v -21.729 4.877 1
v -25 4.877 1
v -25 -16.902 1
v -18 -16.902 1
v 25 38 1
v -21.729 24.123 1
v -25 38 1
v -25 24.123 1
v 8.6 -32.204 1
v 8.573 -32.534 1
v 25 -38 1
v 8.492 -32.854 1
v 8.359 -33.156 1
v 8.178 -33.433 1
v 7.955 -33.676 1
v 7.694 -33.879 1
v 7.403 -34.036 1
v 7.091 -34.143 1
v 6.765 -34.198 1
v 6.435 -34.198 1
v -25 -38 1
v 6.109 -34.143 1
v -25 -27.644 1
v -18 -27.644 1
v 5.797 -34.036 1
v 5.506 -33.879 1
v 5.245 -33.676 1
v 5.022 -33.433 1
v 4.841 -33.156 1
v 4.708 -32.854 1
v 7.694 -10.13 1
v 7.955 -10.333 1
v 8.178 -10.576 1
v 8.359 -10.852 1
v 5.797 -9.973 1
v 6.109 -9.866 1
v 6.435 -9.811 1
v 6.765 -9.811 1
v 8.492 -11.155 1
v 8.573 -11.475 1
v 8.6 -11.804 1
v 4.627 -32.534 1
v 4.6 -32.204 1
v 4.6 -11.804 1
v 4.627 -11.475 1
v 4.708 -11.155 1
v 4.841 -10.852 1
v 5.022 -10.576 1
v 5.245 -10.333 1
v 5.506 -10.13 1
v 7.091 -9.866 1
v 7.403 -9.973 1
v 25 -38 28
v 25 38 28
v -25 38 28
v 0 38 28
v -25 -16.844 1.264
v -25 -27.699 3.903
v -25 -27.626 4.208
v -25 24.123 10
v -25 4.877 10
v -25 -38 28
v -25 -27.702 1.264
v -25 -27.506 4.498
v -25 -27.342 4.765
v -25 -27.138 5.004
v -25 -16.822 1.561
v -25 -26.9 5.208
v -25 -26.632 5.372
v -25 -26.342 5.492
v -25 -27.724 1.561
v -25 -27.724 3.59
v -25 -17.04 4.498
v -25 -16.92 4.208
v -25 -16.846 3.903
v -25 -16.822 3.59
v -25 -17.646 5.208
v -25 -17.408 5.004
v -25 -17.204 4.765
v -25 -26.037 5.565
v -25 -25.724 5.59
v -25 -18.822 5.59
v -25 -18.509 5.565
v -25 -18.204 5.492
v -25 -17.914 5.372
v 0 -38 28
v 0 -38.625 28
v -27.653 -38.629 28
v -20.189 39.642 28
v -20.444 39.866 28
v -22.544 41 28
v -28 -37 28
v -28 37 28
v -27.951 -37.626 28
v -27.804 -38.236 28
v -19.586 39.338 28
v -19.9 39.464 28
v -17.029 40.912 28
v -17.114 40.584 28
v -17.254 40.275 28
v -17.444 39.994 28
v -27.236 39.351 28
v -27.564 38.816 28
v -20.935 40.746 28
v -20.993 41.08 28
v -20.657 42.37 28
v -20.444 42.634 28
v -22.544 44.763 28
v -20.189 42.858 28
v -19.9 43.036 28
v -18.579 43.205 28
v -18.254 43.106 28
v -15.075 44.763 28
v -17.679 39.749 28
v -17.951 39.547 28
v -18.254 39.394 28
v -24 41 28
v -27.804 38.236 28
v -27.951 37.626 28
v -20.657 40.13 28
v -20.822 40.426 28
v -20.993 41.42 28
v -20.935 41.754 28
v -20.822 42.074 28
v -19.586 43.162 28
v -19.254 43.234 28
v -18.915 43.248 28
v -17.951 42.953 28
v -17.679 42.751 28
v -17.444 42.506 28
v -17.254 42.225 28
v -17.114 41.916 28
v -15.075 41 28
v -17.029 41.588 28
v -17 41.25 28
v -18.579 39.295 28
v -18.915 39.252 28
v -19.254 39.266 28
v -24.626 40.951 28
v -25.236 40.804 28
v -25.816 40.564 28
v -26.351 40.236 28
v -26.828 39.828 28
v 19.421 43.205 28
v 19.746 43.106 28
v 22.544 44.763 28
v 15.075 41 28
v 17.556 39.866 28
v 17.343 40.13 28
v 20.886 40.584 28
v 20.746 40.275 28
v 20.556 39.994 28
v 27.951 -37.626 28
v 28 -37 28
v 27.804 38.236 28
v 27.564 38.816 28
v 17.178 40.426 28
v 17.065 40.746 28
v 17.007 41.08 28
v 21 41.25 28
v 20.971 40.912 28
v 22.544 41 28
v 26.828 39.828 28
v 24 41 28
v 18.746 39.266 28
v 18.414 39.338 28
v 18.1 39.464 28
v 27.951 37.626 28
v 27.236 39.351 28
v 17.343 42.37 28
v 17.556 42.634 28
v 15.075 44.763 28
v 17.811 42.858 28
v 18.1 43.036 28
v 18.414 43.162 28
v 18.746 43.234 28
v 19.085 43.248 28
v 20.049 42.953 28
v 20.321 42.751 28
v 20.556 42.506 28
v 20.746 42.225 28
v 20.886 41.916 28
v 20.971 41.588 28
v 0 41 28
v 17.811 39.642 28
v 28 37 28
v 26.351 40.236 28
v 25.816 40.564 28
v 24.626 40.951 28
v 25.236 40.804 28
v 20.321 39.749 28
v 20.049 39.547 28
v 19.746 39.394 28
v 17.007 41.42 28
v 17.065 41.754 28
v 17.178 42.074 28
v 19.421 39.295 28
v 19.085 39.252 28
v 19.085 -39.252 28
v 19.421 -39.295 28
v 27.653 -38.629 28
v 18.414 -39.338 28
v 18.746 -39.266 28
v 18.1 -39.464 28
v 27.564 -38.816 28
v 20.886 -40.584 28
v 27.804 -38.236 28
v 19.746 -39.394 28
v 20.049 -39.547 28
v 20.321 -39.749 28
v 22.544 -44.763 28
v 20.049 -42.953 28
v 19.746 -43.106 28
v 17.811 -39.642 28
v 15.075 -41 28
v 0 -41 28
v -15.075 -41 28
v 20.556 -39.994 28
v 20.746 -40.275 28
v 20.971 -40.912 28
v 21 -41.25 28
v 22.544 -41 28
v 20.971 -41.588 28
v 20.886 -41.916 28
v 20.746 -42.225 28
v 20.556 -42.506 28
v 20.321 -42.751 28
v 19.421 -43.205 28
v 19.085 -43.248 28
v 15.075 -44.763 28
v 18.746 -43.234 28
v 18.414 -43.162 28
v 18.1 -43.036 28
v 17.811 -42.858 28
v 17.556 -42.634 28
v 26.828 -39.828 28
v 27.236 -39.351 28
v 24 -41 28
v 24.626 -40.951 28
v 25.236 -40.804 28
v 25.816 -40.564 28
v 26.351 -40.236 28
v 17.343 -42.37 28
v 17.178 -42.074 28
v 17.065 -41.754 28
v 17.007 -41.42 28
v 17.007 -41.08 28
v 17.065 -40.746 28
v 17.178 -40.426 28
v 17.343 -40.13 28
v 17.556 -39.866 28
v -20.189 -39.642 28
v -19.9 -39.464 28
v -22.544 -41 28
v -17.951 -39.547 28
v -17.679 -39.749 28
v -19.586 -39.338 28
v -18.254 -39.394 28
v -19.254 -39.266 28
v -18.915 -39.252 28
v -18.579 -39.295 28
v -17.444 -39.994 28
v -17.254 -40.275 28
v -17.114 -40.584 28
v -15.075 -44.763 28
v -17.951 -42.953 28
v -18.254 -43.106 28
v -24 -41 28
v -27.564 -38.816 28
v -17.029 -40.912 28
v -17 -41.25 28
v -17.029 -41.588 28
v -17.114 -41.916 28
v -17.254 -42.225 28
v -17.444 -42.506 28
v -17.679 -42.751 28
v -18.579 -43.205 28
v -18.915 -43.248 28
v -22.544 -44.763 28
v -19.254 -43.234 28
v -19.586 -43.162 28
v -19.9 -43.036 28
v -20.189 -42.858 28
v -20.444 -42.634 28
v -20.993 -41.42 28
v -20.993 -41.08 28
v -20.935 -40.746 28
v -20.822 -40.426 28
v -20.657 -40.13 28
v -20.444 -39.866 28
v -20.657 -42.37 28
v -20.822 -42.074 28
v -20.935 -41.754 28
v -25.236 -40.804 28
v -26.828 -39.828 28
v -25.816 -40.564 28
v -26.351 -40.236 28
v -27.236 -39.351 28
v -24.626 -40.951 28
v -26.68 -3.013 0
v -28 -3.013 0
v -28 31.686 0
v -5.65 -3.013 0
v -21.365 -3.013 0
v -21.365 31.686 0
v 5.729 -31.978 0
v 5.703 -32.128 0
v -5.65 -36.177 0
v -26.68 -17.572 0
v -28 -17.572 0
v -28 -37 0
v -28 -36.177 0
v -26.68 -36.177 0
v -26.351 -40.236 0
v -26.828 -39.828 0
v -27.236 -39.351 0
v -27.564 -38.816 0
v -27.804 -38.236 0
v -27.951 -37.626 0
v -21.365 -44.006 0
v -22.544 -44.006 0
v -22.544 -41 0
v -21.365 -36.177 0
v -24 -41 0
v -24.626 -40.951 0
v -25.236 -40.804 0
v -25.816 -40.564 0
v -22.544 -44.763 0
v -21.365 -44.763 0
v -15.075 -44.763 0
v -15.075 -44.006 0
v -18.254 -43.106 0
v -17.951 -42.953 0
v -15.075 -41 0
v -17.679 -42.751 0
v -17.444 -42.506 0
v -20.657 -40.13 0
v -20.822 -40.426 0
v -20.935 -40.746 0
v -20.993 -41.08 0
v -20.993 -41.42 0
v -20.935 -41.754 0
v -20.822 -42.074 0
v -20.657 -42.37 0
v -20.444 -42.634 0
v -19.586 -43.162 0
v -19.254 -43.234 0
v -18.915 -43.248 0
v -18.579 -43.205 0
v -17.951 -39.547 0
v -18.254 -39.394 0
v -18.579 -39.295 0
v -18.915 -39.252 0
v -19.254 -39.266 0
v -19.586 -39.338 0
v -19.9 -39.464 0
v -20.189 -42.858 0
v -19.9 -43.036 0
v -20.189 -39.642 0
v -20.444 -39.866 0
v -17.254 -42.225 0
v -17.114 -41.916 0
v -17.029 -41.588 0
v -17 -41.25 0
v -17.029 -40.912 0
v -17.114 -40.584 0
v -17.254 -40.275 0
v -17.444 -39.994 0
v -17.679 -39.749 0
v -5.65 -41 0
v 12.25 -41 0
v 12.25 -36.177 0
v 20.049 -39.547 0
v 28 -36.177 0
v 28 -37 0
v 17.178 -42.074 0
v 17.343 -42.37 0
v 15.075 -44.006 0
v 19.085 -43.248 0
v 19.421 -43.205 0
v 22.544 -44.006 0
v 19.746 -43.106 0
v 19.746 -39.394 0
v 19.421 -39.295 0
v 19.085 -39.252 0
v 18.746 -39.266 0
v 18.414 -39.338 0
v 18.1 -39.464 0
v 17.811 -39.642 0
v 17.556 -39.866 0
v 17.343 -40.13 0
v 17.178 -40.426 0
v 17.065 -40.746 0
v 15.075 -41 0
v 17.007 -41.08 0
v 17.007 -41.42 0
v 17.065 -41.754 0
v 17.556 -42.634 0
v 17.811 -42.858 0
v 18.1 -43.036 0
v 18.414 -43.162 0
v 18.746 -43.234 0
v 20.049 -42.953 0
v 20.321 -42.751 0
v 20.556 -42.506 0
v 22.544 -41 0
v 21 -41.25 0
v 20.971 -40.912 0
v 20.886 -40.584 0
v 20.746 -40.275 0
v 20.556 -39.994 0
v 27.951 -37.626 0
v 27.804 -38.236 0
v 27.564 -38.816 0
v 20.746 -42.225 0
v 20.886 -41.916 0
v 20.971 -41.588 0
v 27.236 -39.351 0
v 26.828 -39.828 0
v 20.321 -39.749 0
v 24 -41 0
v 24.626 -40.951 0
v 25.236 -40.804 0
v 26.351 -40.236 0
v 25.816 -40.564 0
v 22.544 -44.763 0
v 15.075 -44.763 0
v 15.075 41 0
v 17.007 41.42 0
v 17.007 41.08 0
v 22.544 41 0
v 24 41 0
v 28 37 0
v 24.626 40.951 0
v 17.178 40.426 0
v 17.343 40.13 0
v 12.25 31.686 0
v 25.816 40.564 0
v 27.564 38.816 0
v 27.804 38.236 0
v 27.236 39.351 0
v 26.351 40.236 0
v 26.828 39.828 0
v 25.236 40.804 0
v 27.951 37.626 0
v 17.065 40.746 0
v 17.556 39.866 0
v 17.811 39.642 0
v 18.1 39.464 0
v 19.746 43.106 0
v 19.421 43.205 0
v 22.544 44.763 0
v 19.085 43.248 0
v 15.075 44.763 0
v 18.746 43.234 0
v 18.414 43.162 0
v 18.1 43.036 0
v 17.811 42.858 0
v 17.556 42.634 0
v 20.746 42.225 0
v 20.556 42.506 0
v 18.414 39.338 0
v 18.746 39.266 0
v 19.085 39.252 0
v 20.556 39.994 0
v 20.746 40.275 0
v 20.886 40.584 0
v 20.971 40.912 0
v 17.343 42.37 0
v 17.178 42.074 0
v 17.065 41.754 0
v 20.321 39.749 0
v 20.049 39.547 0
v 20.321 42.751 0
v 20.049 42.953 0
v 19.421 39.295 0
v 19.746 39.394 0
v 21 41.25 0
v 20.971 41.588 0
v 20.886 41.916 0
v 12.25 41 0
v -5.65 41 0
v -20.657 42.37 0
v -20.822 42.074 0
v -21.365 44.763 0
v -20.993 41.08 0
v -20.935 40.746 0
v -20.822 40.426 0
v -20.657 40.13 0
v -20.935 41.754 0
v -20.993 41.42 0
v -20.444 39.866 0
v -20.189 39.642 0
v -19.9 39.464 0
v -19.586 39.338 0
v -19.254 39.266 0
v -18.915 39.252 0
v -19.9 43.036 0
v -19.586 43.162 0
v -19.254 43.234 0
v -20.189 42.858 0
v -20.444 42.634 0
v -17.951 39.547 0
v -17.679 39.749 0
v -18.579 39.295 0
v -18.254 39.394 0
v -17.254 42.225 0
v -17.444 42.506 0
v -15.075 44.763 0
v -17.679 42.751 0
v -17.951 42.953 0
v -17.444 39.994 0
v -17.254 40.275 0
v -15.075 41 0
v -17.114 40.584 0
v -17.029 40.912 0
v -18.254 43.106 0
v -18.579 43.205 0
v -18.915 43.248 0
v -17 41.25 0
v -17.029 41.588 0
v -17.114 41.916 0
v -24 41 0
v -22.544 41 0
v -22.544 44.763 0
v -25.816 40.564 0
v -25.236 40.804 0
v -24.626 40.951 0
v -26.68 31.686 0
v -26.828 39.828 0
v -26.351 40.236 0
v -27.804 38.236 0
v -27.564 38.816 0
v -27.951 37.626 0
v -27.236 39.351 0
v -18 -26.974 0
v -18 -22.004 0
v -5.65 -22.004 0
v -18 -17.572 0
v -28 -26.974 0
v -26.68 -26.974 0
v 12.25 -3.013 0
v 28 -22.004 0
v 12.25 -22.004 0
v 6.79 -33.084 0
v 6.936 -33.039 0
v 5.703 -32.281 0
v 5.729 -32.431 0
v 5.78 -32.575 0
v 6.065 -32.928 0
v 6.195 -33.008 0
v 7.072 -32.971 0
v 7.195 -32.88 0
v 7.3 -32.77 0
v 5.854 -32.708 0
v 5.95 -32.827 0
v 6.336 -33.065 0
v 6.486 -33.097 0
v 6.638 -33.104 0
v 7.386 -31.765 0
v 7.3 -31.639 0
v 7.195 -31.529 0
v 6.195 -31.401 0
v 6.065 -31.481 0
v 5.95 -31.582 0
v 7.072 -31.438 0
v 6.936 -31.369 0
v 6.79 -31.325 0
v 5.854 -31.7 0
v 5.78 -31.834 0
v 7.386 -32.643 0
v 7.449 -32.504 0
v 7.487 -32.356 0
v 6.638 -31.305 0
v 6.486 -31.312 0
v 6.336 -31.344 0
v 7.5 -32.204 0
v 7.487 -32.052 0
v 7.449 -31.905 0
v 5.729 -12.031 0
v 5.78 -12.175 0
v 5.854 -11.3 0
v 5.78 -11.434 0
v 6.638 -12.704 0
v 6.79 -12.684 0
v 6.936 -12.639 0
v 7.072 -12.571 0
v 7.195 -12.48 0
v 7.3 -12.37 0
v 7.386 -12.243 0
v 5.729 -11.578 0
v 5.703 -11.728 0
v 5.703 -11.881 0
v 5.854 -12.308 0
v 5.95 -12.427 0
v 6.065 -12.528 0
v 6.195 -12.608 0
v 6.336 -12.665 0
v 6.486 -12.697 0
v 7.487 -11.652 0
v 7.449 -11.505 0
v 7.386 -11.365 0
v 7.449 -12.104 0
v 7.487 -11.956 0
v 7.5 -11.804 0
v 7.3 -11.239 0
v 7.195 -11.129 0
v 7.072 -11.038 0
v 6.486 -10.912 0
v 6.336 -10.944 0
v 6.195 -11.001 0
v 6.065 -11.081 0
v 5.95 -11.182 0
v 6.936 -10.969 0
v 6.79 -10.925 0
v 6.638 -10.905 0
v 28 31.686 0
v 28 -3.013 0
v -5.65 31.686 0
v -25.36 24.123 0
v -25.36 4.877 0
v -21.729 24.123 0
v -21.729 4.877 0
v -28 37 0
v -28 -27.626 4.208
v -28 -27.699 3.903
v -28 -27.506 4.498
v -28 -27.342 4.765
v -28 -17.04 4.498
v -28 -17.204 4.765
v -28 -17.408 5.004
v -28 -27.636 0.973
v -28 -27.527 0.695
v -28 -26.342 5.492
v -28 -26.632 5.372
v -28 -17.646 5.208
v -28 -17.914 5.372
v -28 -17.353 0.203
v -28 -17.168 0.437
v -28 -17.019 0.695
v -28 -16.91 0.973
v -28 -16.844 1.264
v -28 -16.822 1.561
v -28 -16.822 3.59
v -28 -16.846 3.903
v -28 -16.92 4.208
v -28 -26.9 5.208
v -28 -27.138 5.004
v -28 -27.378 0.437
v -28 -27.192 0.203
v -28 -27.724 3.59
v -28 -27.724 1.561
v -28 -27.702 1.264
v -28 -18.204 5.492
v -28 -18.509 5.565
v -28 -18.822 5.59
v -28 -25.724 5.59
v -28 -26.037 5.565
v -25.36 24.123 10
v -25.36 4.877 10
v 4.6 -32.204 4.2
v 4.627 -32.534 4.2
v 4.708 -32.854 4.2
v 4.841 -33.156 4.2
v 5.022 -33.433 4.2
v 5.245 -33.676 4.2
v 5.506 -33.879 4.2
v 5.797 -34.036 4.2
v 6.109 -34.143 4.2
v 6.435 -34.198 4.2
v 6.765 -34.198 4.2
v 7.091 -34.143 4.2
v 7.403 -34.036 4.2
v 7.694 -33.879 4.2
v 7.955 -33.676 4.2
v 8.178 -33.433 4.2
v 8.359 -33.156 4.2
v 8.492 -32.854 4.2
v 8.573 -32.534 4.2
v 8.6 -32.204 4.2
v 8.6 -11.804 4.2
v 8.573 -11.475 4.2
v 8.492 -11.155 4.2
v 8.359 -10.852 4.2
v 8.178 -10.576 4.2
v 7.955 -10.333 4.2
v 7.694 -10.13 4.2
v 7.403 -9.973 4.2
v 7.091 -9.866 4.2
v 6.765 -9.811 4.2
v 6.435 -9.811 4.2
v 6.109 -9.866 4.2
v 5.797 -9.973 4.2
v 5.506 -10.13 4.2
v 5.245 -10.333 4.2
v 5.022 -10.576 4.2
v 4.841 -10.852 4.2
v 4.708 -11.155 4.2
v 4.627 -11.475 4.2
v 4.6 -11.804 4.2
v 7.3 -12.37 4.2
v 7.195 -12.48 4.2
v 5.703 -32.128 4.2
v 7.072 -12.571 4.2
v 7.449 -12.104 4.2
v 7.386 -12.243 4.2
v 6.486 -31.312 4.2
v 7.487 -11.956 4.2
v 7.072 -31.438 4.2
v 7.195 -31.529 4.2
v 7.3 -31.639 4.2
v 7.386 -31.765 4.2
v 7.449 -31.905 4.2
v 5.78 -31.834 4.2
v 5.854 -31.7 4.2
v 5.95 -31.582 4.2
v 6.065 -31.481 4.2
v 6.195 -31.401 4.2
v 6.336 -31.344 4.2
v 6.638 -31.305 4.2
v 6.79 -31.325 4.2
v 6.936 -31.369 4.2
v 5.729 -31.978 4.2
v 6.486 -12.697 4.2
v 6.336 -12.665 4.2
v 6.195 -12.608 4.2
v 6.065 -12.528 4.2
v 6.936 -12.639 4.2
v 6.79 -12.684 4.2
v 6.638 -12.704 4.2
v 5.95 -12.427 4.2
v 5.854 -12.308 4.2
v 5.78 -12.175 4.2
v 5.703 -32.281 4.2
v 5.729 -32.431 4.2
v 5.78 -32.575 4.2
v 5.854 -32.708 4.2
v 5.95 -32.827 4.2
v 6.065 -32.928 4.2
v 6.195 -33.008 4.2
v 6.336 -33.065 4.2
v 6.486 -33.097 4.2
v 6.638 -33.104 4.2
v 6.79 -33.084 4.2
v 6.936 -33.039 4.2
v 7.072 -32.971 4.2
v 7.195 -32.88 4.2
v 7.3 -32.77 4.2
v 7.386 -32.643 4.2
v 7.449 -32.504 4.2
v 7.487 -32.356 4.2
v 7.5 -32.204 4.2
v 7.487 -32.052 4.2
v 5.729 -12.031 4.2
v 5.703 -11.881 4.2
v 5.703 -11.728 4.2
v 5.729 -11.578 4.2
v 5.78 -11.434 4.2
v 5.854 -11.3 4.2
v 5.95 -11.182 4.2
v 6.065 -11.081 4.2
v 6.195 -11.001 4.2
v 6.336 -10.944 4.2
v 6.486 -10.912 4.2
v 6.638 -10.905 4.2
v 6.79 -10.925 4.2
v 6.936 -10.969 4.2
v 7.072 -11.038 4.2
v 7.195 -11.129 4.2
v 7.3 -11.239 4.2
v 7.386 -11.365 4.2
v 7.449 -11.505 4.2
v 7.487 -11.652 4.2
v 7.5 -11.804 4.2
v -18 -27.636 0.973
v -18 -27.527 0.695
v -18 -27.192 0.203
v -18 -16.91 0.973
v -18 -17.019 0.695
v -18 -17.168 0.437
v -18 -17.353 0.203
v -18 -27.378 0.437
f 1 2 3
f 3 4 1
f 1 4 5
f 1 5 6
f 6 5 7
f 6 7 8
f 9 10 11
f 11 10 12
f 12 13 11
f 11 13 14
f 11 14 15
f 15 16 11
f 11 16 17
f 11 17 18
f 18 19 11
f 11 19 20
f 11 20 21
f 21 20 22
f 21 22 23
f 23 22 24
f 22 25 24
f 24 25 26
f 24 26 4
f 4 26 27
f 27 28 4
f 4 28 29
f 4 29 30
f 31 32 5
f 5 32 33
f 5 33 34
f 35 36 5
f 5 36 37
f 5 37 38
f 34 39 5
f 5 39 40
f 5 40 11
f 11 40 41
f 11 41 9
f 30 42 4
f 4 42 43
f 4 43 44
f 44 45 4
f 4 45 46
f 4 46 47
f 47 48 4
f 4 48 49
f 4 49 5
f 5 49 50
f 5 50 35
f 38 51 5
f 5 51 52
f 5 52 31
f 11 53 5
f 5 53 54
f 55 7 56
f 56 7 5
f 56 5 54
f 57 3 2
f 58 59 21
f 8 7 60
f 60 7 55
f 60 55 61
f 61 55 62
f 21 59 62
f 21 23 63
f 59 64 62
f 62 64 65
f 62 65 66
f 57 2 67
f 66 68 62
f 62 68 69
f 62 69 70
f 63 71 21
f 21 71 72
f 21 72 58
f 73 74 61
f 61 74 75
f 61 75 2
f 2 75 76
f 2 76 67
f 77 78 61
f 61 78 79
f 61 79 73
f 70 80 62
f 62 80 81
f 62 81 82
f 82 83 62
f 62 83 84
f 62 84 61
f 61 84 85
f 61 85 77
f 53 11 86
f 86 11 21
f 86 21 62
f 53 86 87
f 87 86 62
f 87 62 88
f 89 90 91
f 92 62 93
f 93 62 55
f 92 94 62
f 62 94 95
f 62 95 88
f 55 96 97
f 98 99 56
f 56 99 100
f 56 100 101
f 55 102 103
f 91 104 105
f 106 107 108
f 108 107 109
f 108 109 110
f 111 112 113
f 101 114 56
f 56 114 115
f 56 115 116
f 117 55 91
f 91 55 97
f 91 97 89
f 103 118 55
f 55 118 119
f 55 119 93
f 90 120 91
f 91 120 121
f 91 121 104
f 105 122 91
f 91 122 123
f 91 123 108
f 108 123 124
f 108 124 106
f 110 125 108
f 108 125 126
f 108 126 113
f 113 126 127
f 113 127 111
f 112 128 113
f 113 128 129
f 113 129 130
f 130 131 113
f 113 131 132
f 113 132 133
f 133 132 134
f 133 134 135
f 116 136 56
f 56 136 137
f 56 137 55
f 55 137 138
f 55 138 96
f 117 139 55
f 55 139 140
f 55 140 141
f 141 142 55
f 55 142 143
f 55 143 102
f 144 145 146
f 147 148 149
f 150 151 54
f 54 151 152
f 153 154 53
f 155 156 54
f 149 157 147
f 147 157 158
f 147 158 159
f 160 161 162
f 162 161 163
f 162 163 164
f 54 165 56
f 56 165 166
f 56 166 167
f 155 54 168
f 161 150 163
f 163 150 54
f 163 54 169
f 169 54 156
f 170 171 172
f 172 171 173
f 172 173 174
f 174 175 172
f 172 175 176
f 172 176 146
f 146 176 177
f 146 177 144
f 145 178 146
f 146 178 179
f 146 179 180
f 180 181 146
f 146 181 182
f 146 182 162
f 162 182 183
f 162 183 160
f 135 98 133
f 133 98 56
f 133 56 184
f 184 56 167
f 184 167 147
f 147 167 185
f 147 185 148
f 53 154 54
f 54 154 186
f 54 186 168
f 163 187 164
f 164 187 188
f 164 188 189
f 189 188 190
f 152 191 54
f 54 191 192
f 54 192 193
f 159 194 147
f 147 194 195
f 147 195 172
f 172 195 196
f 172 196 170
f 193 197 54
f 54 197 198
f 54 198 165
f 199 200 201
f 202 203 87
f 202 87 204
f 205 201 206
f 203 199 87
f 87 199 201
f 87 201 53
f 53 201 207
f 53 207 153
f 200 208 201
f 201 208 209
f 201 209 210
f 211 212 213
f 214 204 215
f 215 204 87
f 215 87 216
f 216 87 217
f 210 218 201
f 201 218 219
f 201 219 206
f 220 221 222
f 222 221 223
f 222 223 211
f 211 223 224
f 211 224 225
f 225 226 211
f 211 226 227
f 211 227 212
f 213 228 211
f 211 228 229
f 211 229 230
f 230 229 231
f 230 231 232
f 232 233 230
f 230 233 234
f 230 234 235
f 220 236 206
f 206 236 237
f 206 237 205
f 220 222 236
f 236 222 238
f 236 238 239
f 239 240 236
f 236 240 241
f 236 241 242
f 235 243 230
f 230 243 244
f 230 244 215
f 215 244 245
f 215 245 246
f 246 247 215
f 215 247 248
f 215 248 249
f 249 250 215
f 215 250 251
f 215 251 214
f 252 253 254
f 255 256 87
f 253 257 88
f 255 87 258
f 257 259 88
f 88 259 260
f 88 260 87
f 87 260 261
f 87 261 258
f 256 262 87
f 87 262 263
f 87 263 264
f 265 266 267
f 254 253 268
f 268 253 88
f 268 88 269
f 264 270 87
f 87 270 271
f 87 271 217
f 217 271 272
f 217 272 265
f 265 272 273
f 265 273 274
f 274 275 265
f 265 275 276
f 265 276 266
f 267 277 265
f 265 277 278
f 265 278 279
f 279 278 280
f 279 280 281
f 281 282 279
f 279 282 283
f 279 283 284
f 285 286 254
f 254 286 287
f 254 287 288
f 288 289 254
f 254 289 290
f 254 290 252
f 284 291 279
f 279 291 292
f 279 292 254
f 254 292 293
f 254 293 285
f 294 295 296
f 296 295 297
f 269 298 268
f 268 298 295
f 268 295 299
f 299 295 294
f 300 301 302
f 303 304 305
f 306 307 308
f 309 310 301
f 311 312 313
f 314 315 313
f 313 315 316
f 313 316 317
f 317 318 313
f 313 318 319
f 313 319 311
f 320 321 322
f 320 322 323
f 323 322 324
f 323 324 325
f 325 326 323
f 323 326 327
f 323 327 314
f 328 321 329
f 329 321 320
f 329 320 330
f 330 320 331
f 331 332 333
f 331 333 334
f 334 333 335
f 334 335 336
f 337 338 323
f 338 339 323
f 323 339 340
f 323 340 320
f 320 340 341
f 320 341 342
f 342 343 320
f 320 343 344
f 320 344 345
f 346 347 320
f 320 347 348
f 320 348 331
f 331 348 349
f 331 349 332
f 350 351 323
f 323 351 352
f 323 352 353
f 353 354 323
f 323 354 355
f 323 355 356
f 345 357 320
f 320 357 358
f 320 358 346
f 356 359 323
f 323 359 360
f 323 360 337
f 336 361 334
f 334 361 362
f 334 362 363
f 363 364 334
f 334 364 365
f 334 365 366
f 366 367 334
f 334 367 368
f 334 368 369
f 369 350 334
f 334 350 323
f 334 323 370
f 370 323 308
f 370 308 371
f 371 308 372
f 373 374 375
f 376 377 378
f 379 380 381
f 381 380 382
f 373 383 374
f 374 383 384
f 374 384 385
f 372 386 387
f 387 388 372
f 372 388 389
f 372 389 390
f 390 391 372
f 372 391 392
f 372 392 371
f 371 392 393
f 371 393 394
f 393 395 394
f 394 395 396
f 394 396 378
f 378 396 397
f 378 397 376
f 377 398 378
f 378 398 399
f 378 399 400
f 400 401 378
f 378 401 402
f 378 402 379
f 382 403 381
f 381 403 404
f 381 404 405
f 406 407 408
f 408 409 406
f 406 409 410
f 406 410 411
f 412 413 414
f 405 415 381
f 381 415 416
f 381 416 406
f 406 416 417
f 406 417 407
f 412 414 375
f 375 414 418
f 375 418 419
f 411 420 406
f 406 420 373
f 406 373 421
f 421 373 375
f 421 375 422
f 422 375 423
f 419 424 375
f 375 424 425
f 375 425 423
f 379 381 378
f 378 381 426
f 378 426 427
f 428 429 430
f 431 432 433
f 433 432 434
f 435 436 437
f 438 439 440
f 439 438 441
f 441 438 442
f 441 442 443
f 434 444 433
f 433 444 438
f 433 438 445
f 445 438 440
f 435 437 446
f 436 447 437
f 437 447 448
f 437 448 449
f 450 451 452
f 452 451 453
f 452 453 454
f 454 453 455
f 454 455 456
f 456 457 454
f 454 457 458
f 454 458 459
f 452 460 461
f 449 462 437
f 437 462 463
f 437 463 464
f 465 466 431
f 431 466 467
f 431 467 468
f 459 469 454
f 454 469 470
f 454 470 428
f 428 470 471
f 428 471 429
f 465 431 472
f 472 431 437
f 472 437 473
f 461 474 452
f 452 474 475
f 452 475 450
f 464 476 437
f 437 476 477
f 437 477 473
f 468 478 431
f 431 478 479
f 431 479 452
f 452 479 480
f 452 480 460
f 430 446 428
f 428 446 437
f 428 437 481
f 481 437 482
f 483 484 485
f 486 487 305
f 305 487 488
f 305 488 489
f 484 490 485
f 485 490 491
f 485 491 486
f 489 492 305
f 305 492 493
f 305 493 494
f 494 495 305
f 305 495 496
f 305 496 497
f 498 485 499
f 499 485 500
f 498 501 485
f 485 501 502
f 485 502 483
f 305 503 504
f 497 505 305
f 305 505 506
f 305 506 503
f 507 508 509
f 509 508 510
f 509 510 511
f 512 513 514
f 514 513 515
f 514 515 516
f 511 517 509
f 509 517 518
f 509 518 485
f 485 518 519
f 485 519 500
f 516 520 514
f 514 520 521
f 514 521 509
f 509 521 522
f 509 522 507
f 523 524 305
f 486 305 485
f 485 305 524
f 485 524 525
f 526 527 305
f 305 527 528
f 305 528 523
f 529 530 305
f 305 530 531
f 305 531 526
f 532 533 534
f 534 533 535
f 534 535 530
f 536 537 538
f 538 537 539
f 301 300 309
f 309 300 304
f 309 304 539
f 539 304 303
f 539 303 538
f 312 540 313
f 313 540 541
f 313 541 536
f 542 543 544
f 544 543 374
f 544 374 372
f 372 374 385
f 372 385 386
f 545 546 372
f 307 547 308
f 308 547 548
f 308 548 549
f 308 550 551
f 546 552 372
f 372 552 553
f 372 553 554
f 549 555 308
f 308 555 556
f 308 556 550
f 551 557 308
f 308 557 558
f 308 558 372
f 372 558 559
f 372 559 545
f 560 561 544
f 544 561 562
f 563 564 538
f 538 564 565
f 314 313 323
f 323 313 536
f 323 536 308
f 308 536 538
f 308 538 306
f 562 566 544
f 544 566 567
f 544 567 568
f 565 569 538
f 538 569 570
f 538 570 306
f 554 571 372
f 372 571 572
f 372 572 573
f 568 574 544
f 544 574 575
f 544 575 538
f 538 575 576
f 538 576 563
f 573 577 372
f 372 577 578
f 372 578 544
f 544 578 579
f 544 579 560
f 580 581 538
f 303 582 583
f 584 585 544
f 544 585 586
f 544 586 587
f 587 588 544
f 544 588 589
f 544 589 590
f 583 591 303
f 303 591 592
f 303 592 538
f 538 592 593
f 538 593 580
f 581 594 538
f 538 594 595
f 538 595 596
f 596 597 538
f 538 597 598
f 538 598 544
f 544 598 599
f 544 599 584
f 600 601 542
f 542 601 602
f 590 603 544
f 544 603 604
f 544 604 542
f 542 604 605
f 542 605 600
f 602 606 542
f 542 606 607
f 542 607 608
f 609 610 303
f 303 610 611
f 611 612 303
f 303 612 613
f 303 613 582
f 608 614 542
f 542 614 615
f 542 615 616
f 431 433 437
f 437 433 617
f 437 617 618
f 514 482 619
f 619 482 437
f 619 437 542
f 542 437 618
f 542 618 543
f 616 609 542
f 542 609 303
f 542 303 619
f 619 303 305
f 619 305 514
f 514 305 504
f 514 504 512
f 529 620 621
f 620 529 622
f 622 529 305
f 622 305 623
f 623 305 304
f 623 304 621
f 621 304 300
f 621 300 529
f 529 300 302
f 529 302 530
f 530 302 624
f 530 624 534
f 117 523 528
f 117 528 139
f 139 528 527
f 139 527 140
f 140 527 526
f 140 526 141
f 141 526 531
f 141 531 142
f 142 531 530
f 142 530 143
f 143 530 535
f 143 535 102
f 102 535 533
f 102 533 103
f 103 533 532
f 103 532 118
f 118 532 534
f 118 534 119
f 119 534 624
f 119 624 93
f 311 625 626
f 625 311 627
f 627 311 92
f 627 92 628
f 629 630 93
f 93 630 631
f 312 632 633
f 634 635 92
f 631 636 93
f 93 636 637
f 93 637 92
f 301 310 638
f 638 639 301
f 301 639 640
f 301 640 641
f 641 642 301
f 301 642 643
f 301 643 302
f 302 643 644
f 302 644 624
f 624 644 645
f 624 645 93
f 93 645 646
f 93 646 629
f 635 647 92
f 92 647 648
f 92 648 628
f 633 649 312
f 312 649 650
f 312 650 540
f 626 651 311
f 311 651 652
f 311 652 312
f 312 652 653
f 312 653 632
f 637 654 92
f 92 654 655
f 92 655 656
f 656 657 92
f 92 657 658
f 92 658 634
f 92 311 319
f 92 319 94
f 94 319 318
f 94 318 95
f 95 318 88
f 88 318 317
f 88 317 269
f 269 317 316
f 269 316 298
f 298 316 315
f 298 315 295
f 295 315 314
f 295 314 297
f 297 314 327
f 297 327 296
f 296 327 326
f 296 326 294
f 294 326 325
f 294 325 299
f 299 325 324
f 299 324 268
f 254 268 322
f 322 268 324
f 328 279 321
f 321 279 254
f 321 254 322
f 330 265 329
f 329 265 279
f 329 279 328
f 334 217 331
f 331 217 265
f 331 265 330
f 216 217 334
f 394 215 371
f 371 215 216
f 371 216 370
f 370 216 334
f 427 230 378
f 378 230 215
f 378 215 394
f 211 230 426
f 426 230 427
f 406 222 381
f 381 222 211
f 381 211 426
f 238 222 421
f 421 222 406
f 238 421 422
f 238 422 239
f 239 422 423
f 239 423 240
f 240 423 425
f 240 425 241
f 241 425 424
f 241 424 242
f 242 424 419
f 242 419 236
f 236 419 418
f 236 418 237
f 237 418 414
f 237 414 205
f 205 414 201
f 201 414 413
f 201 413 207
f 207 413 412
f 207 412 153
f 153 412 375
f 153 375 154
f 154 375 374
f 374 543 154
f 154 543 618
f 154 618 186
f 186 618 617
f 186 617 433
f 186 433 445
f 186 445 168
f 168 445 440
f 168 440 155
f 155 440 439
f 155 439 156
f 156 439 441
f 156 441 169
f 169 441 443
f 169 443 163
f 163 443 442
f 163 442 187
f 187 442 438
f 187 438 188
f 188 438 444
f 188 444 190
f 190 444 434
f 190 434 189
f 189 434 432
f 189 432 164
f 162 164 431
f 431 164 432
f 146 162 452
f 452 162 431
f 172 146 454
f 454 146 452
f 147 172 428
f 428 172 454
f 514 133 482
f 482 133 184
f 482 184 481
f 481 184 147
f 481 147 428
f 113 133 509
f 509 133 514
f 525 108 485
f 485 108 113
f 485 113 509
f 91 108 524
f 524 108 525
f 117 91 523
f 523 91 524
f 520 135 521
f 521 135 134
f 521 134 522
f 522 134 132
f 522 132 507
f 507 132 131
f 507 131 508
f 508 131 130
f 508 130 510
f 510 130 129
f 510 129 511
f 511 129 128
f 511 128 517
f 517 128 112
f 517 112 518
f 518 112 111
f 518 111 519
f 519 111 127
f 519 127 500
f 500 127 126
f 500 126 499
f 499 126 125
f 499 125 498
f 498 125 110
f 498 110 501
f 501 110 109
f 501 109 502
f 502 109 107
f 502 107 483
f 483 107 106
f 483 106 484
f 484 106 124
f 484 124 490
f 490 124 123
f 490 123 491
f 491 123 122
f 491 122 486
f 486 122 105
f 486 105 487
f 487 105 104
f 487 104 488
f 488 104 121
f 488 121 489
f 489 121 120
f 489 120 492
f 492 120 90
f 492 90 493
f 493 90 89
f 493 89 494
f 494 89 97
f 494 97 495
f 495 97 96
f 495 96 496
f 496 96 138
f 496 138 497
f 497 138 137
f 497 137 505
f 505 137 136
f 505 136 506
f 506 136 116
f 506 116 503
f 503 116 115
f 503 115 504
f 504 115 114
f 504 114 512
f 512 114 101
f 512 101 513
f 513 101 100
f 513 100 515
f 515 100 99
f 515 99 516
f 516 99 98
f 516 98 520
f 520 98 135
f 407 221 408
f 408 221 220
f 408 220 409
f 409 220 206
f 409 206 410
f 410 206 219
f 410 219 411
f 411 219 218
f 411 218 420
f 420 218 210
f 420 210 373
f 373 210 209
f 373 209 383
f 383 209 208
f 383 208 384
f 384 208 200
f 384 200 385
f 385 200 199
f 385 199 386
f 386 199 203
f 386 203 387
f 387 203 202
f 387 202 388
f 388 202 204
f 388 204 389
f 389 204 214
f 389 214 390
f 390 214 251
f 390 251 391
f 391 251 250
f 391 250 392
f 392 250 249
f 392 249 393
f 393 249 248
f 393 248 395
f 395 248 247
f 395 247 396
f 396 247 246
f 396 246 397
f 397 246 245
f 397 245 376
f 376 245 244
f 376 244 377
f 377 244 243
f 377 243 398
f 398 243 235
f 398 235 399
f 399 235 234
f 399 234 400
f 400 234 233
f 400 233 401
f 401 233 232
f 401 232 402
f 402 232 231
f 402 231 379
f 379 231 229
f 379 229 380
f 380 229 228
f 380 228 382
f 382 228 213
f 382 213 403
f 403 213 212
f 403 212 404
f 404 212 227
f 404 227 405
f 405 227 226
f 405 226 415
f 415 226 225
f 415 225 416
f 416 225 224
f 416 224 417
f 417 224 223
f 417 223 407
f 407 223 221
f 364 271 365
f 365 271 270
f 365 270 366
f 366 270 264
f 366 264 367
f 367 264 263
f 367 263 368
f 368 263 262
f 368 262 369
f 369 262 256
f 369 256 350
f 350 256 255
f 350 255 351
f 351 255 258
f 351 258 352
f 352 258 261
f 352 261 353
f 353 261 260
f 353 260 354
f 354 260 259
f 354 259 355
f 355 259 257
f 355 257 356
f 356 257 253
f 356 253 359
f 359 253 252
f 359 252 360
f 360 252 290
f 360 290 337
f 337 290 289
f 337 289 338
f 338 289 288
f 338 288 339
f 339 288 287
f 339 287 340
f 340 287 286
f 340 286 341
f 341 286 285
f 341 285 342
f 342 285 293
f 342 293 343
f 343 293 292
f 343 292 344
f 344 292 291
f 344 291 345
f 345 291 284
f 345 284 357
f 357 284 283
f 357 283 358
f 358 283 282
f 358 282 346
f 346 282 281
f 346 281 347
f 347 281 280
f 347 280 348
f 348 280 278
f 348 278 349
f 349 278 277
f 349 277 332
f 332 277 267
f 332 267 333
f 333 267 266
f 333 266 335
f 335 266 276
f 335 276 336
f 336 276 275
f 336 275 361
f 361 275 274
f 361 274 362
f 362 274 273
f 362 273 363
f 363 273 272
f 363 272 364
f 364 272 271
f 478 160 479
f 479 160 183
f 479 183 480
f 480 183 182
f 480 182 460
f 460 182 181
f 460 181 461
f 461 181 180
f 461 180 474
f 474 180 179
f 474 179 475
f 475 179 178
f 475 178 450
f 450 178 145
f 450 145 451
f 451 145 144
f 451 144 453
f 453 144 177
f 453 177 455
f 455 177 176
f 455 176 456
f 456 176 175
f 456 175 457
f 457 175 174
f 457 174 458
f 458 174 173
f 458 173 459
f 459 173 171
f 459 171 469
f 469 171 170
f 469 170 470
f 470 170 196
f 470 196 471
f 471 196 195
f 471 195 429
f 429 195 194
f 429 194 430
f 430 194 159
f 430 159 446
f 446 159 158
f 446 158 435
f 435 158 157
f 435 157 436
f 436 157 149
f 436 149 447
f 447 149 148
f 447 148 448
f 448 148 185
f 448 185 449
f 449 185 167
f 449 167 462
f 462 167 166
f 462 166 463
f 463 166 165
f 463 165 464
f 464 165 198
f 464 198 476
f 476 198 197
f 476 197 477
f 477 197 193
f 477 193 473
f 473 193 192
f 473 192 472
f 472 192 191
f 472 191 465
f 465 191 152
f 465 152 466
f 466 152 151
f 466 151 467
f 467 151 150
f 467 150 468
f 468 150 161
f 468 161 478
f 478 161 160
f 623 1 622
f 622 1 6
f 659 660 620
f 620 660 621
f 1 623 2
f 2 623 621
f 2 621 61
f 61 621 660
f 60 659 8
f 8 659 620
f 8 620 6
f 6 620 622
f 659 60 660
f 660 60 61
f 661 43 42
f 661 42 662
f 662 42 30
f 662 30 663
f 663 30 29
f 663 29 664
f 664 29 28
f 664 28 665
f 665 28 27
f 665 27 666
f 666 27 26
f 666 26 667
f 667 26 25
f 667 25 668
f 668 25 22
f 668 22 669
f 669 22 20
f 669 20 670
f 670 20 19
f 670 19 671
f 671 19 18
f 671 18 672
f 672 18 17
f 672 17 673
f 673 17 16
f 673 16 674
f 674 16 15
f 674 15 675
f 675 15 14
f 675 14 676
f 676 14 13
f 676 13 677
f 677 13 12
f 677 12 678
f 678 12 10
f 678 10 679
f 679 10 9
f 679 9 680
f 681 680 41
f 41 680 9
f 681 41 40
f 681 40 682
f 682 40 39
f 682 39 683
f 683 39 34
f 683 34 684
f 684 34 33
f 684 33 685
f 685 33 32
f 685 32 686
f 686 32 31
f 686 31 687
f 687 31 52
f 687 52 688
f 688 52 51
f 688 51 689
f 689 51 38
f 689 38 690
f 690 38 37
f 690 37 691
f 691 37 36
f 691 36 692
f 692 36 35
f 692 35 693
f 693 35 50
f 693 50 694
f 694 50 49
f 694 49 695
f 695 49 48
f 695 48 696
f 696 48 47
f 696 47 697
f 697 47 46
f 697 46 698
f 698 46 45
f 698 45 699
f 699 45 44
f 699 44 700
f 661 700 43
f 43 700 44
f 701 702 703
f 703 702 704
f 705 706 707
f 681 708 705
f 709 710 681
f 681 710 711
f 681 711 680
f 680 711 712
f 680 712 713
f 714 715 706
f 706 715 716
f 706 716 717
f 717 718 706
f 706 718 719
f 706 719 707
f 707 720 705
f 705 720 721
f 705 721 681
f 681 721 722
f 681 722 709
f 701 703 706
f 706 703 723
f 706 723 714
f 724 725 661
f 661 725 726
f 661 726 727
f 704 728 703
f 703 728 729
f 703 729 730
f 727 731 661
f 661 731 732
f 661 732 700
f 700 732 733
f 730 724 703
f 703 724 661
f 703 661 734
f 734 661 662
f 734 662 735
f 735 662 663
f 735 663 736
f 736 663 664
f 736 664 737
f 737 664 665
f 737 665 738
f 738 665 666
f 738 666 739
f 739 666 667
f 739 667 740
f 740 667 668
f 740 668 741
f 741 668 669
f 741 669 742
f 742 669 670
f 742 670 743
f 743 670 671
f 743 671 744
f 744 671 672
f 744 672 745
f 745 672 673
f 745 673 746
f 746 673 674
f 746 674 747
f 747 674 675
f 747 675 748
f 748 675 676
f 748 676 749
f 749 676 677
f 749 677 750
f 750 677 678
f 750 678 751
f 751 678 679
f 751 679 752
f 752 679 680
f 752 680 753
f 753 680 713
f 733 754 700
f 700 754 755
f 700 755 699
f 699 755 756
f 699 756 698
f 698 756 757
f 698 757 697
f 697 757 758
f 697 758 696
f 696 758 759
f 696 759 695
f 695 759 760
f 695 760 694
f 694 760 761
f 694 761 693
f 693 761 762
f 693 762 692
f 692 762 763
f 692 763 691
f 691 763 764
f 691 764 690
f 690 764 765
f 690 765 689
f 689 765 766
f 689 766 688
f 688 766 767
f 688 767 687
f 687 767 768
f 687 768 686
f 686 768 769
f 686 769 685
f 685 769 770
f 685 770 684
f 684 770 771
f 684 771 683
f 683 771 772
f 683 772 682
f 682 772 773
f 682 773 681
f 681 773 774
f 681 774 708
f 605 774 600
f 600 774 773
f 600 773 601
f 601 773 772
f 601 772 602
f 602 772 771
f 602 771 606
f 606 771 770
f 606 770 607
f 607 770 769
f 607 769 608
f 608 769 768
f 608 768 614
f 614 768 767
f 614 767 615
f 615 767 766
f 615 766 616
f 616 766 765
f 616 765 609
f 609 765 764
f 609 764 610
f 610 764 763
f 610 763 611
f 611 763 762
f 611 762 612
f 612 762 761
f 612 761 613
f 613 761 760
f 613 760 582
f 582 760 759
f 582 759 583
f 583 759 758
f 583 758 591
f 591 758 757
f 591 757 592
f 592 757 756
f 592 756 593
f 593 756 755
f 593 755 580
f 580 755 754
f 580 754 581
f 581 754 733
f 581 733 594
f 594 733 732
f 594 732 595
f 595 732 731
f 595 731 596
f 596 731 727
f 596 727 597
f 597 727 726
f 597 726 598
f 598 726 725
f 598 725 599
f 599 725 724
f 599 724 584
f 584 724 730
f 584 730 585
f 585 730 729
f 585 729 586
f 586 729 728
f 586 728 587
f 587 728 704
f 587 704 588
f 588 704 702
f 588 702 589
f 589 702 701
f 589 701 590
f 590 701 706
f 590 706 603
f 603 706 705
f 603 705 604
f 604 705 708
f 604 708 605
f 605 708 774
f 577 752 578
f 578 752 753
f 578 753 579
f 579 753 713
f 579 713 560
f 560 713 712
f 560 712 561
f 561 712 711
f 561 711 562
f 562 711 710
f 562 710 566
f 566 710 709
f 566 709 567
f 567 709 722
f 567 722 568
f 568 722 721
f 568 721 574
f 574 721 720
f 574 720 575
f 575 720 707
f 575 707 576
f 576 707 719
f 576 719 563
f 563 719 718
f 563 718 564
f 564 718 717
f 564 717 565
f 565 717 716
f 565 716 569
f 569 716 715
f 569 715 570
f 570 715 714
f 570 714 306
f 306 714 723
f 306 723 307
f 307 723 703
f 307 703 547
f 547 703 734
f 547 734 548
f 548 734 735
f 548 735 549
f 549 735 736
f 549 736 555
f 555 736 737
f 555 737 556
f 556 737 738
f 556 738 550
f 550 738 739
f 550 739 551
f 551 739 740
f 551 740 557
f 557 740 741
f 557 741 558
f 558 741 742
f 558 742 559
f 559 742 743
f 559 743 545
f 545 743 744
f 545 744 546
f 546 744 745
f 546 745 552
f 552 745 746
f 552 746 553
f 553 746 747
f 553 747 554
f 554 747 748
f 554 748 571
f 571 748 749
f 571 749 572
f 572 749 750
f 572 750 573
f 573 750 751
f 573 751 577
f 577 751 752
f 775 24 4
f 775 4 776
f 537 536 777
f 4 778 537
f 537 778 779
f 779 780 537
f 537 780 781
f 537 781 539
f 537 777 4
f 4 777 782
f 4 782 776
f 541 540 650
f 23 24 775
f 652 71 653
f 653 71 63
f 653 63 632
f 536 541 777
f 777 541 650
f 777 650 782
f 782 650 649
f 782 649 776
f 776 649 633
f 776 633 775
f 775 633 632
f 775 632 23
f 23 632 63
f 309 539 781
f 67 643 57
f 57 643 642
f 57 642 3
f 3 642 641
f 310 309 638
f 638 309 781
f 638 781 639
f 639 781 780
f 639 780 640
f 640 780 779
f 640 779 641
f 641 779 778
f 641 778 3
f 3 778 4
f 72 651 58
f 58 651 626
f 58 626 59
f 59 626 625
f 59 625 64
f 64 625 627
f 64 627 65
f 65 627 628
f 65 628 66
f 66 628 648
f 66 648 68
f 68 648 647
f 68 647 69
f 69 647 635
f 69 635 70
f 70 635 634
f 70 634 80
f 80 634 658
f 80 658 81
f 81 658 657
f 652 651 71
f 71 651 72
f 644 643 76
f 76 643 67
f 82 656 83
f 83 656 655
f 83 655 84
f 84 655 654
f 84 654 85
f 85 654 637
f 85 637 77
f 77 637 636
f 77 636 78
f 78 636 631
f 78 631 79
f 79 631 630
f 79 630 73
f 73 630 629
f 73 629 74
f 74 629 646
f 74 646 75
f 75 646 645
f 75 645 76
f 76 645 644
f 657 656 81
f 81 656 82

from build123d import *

# Parameters (mm, degrees)
CROQUIS1_W              = 50
CROQUIS1_H              = 76
SALIENTE_EXTRUIR1_DEPTH = 28
CROQUIS2_R              = 2
CORTAR_EXTRUIR1_DEPTH   = 28
CROQUIS3_W              = 51.795240056
CROQUIS3_H              = 77.113165798
SALIENTE_EXTRUIR2_DEPTH = 1
CROQUIS4_W              = 3.63093588
CROQUIS4_H              = 19.245174354
CORTAR_EXTRUIR2_DEPTH   = 10
SALIENTE_EXTRUIR3_DEPTH = 3.2
CROQUIS6_R              = 0.9
CORTAR_EXTRUIR3_DEPTH   = 10
CORTAR_EXTRUIR4_DEPTH   = 10


with BuildPart() as part:
    # Croquis1 → Saliente-Extruir1 (new body)
    with BuildSketch(Plane.XY):
        with BuildLine():
            Line((-24, 41), (-22.544096538, 41))
            Line((-22.544096538, 41), (-22.544096538, 44.762632311))
            Line((-22.544096538, 44.762632311), (-15.074666962, 44.762632311))
            Line((-15.074666962, 44.762632311), (-15.074666962, 41))
            Line((-15.074666962, 41), (15.074666962, 41))
            Line((15.074666962, 41), (15.074666962, 44.762632311))
            Line((15.074666962, 44.762632311), (22.544096538, 44.762632311))
            Line((22.544096538, 44.762632311), (22.544096538, 41))
            Line((22.544096538, 41), (24, 41))
            ThreePointArc((24, 41), (26.828427125, 39.828427125), (28, 37))
            Line((28, 37), (28, -37))
            ThreePointArc((28, -37), (26.828427125, -39.828427125), (24, -41))
            Line((24, -41), (22.544096538, -41))
            Line((22.544096538, -41), (22.544096538, -44.762632311))
            Line((22.544096538, -44.762632311), (15.074666962, -44.762632311))
            Line((15.074666962, -44.762632311), (15.074666962, -41))
            Line((15.074666962, -41), (-15.074666962, -41))
            Line((-15.074666962, -41), (-15.074666962, -44.762632311))
            Line((-15.074666962, -44.762632311), (-22.544096538, -44.762632311))
            Line((-22.544096538, -44.762632311), (-22.544096538, -41))
            Line((-22.544096538, -41), (-24, -41))
            ThreePointArc((-24, -41), (-26.828427125, -39.828427125), (-28, -37))
            Line((-28, -37), (-28, 37))
            ThreePointArc((-28, 37), (-26.828427125, 39.828427125), (-24, 41))
        make_face()
        Rectangle(CROQUIS1_W, CROQUIS1_H, mode=Mode.SUBTRACT)
    extrude(amount=SALIENTE_EXTRUIR1_DEPTH)

    # Croquis2 → Cortar-Extruir1 (cut)
    with BuildSketch(Plane.XY.offset(28)):
        with Locations((-19, 41.25)):
            Circle(CROQUIS2_R)
        with Locations((19, 41.25)):
            Circle(CROQUIS2_R)
        with Locations((-19, -41.25)):
            Circle(CROQUIS2_R)
        with Locations((19, -41.25)):
            Circle(CROQUIS2_R)
    extrude(amount=-CORTAR_EXTRUIR1_DEPTH, mode=Mode.SUBTRACT)

    # Croquis3 → Saliente-Extruir2 (add)
    with BuildSketch(Plane(origin=(0, 0, 0), x_dir=(-1, 0, 0), z_dir=(0, 0, -1))):
        Rectangle(CROQUIS3_W, CROQUIS3_H)
    extrude(amount=-SALIENTE_EXTRUIR2_DEPTH)

    # Croquis4 → Cortar-Extruir2 (cut)
    with BuildSketch(Plane(origin=(0, 0, 0), x_dir=(-1, 0, 0), z_dir=(0, 0, -1))):
        with Locations((23.544656322, 14.5)):
            Rectangle(CROQUIS4_W, CROQUIS4_H)
    extrude(amount=-CORTAR_EXTRUIR2_DEPTH, mode=Mode.SUBTRACT)

    # Croquis5 → Saliente-Extruir3 (add)
    with BuildSketch(Plane.XY.offset(1)):
        with BuildLine():
            Line((8.6, -32.204355183), (8.6, -11.804355183))
            ThreePointArc((8.6, -11.804355183), (6.6, -9.804355183), (4.6, -11.804355183))
            Line((4.6, -11.804355183), (4.6, -32.204355183))
            ThreePointArc((4.6, -32.204355183), (6.6, -34.204355183), (8.6, -32.204355183))
        make_face()
    extrude(amount=SALIENTE_EXTRUIR3_DEPTH)

    # Croquis6 → Cortar-Extruir3 (cut)
    with BuildSketch(Plane.XY.offset(4.2)):
        with Locations((6.6, -32.204355183)):
            Circle(CROQUIS6_R)
        with Locations((6.6, -11.804355183)):
            Circle(CROQUIS6_R)
    extrude(amount=-CORTAR_EXTRUIR3_DEPTH, mode=Mode.SUBTRACT)

    # Croquis7 → Cortar-Extruir4 (cut)
    with BuildSketch(Plane.ZY.offset(28)):
        with BuildLine():
            Line((3.589785913, -27.724097248), (1.561156319, -27.724097248))
            ThreePointArc((1.561156319, -27.724097248), (0.146942756, -27.13831081), (-0.438843681, -25.724097248))
            Line((-0.438843681, -25.724097248), (-0.438843681, -18.821747943))
            ThreePointArc((-0.438843681, -18.821747943), (0.146942756, -17.407534381), (1.561156319, -16.821747943))
            Line((1.561156319, -16.821747943), (3.589785913, -16.821747943))
            ThreePointArc((3.589785913, -16.821747943), (5.003999475, -17.407534381), (5.589785913, -18.821747943))
            Line((5.589785913, -18.821747943), (5.589785913, -25.724097248))
            ThreePointArc((5.589785913, -25.724097248), (5.003999475, -27.13831081), (3.589785913, -27.724097248))
        make_face()
    extrude(amount=-CORTAR_EXTRUIR4_DEPTH, mode=Mode.SUBTRACT)


solid = part.part
